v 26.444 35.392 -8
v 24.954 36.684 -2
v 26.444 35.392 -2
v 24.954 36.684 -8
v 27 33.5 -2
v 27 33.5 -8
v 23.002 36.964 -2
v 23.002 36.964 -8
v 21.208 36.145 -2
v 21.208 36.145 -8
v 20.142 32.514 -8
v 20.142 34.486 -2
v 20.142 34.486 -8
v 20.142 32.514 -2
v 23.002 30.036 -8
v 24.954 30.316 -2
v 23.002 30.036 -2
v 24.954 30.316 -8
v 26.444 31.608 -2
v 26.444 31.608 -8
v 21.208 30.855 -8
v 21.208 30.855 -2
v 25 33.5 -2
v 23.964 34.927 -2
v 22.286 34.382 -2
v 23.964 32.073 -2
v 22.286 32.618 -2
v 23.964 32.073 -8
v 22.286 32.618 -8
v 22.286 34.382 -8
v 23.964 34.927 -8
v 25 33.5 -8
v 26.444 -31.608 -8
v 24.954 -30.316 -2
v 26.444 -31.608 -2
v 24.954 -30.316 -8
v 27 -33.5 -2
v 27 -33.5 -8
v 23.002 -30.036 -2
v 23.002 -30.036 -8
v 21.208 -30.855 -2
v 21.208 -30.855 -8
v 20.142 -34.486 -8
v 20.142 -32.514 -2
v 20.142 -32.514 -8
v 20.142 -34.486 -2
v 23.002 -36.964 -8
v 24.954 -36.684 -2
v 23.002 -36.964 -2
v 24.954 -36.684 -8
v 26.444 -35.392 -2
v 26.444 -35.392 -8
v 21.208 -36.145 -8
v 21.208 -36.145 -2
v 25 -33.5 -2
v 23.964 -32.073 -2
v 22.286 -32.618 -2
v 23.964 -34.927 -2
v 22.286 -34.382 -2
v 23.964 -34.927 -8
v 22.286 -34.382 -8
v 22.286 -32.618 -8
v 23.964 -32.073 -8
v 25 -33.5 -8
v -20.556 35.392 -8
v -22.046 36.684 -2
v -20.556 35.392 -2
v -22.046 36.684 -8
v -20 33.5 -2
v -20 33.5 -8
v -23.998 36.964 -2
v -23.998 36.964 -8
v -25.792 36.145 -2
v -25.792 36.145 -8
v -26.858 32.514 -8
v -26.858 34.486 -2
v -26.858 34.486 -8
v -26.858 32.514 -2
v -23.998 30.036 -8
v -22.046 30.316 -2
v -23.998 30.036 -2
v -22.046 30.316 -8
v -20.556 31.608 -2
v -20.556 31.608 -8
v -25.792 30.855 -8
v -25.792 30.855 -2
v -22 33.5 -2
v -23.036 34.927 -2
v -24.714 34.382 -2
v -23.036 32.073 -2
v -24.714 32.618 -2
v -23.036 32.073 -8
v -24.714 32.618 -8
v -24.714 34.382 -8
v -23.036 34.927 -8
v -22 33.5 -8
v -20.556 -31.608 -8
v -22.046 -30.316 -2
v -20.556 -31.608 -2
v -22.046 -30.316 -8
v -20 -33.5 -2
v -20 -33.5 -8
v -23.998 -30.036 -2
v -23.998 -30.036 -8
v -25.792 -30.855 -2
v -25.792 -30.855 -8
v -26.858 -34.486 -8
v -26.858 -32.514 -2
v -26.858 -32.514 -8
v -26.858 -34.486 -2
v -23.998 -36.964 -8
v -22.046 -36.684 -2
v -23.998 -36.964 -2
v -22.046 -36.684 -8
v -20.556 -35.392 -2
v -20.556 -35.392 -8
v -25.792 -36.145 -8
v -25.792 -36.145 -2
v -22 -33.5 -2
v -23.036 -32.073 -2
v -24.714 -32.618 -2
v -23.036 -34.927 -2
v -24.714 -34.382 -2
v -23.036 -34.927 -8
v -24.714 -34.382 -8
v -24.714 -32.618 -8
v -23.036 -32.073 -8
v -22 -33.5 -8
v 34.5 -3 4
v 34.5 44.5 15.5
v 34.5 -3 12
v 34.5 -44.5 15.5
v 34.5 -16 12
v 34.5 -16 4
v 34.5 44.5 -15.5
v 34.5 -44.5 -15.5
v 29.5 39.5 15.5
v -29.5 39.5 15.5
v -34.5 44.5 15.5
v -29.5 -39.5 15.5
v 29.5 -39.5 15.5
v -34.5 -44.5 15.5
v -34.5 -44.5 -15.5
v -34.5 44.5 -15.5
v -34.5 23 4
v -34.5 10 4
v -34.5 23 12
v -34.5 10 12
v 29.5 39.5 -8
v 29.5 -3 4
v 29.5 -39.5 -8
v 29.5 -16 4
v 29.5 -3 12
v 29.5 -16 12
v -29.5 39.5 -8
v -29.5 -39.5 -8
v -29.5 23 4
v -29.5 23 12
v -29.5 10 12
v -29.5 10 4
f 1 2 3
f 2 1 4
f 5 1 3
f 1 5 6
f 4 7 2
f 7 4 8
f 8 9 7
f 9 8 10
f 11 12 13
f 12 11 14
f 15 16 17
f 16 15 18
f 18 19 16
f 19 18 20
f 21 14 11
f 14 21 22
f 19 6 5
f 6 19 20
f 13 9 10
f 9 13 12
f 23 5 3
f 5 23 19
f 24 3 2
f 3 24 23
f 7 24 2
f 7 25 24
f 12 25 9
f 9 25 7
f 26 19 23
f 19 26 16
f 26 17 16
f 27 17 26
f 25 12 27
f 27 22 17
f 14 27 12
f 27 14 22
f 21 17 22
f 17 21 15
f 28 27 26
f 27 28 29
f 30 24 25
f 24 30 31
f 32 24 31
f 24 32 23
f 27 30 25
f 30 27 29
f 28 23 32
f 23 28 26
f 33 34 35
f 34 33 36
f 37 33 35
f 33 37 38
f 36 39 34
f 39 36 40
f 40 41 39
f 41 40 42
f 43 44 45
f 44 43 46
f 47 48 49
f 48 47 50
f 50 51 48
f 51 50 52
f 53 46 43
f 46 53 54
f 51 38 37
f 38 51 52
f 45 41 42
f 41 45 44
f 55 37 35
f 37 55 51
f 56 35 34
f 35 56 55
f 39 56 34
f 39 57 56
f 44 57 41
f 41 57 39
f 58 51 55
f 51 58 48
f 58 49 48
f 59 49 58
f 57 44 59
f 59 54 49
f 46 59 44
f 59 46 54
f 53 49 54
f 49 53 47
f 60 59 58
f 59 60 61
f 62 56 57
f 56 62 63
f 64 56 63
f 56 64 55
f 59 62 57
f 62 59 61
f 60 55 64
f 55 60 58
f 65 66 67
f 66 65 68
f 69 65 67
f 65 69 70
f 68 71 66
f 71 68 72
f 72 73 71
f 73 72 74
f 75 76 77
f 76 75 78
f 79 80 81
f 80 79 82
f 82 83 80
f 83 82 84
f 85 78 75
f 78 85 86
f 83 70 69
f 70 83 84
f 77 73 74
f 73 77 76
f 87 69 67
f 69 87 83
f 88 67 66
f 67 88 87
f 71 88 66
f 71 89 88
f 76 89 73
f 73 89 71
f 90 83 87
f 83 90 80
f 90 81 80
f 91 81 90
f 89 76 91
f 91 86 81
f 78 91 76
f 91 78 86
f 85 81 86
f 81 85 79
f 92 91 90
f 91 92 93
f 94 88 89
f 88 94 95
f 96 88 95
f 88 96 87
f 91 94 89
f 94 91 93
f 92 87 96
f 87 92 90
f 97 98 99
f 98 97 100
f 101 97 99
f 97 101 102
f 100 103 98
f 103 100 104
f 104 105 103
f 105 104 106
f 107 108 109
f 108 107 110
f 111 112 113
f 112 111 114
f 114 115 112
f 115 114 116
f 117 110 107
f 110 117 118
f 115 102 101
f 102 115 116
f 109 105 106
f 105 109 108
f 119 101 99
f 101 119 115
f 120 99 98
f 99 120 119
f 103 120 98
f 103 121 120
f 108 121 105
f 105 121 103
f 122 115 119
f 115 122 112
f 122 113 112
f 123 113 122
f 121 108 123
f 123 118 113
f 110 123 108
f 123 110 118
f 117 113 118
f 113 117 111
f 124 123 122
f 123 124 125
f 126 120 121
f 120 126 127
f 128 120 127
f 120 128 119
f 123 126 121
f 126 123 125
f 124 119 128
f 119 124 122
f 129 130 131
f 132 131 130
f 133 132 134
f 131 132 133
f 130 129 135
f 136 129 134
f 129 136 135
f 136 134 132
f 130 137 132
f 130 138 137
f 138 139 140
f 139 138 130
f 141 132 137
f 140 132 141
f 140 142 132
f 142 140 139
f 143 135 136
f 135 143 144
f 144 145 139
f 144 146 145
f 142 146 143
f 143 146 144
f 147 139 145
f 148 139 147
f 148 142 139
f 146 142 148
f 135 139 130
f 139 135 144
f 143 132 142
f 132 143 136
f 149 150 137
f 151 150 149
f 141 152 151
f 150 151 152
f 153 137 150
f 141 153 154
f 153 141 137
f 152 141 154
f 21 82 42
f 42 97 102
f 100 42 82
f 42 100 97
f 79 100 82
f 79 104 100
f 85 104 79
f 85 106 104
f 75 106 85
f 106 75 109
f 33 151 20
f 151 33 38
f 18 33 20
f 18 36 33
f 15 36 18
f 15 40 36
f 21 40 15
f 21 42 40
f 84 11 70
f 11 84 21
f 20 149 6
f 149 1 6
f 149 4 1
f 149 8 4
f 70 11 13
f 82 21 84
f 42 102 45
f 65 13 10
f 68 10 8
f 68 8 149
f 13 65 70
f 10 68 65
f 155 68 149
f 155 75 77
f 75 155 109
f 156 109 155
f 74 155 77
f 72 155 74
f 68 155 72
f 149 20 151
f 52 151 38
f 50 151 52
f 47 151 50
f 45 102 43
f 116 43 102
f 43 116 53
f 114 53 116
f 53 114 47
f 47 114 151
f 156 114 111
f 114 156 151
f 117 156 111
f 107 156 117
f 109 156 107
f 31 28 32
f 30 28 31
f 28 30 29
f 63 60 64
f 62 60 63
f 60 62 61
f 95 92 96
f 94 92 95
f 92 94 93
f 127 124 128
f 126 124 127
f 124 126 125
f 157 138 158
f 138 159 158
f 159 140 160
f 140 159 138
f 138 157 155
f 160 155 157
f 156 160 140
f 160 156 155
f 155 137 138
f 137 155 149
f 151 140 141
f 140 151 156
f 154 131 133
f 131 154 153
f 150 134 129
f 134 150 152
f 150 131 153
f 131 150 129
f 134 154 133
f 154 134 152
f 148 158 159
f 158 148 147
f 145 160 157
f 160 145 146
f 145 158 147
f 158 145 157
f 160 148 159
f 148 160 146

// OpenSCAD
// file: common.scad
PCB_WIDTH = 55 + 4;
PCB_HEIGHT = 75 + 4;
PCB_DEPTH = 16 + 10;

WALL_THICKNESS = 5;

CASE_WIDTH = PCB_WIDTH + WALL_THICKNESS * 2;
CASE_HEIGHT = PCB_HEIGHT + WALL_THICKNESS * 2;

CASE_FRONT_DEPTH = PCB_DEPTH + WALL_THICKNESS;

SCREW_OFFSET = 4;

SUPPORT_DEPTH = 6;

USB_WIDTH = 13;
USB_DEPTH = 8;

LCD_WIDTH = 34.5;
LCD_HEIGHT = 58.0;
// main file
include <common.scad>

module PCB_Hole() {
	cube([PCB_WIDTH, PCB_HEIGHT, PCB_DEPTH], true);
}

module screw() {
	translate([0, 0, -PCB_DEPTH / 2 + WALL_THICKNESS - 0.0001])

	difference() {
		cylinder(h=SUPPORT_DEPTH, d=7);
		cylinder(h=SUPPORT_DEPTH+2, d=3);
	}
}

module case() {
	difference() {
		cube([CASE_WIDTH, CASE_HEIGHT, CASE_FRONT_DEPTH], true);

		translate([0, 0, WALL_THICKNESS + 0.0001]) PCB_Hole();

		// Wemos
		translate([CASE_WIDTH / 2, 5 - USB_WIDTH/2, USB_DEPTH/2])
		cube([30, USB_WIDTH, USB_DEPTH], true);

		// Battery
		translate([-CASE_WIDTH / 2, 10 + USB_WIDTH/2, USB_DEPTH/2])
		cube([30, USB_WIDTH, USB_DEPTH], true);
	}
}

translate([(PCB_WIDTH - 4) / 2 - SCREW_OFFSET, (PCB_HEIGHT - 4) / 2 - SCREW_OFFSET, 0]) screw();
translate([(PCB_WIDTH - 4) / 2 - SCREW_OFFSET, -(PCB_HEIGHT - 4) / 2 + SCREW_OFFSET, 0]) screw();
translate([-(PCB_WIDTH - 4) / 2 + SCREW_OFFSET, (PCB_HEIGHT - 4) / 2 - SCREW_OFFSET, 0]) screw();
translate([-(PCB_WIDTH - 4) / 2 + SCREW_OFFSET, -(PCB_HEIGHT - 4) / 2 + SCREW_OFFSET, 0]) screw();

case();
